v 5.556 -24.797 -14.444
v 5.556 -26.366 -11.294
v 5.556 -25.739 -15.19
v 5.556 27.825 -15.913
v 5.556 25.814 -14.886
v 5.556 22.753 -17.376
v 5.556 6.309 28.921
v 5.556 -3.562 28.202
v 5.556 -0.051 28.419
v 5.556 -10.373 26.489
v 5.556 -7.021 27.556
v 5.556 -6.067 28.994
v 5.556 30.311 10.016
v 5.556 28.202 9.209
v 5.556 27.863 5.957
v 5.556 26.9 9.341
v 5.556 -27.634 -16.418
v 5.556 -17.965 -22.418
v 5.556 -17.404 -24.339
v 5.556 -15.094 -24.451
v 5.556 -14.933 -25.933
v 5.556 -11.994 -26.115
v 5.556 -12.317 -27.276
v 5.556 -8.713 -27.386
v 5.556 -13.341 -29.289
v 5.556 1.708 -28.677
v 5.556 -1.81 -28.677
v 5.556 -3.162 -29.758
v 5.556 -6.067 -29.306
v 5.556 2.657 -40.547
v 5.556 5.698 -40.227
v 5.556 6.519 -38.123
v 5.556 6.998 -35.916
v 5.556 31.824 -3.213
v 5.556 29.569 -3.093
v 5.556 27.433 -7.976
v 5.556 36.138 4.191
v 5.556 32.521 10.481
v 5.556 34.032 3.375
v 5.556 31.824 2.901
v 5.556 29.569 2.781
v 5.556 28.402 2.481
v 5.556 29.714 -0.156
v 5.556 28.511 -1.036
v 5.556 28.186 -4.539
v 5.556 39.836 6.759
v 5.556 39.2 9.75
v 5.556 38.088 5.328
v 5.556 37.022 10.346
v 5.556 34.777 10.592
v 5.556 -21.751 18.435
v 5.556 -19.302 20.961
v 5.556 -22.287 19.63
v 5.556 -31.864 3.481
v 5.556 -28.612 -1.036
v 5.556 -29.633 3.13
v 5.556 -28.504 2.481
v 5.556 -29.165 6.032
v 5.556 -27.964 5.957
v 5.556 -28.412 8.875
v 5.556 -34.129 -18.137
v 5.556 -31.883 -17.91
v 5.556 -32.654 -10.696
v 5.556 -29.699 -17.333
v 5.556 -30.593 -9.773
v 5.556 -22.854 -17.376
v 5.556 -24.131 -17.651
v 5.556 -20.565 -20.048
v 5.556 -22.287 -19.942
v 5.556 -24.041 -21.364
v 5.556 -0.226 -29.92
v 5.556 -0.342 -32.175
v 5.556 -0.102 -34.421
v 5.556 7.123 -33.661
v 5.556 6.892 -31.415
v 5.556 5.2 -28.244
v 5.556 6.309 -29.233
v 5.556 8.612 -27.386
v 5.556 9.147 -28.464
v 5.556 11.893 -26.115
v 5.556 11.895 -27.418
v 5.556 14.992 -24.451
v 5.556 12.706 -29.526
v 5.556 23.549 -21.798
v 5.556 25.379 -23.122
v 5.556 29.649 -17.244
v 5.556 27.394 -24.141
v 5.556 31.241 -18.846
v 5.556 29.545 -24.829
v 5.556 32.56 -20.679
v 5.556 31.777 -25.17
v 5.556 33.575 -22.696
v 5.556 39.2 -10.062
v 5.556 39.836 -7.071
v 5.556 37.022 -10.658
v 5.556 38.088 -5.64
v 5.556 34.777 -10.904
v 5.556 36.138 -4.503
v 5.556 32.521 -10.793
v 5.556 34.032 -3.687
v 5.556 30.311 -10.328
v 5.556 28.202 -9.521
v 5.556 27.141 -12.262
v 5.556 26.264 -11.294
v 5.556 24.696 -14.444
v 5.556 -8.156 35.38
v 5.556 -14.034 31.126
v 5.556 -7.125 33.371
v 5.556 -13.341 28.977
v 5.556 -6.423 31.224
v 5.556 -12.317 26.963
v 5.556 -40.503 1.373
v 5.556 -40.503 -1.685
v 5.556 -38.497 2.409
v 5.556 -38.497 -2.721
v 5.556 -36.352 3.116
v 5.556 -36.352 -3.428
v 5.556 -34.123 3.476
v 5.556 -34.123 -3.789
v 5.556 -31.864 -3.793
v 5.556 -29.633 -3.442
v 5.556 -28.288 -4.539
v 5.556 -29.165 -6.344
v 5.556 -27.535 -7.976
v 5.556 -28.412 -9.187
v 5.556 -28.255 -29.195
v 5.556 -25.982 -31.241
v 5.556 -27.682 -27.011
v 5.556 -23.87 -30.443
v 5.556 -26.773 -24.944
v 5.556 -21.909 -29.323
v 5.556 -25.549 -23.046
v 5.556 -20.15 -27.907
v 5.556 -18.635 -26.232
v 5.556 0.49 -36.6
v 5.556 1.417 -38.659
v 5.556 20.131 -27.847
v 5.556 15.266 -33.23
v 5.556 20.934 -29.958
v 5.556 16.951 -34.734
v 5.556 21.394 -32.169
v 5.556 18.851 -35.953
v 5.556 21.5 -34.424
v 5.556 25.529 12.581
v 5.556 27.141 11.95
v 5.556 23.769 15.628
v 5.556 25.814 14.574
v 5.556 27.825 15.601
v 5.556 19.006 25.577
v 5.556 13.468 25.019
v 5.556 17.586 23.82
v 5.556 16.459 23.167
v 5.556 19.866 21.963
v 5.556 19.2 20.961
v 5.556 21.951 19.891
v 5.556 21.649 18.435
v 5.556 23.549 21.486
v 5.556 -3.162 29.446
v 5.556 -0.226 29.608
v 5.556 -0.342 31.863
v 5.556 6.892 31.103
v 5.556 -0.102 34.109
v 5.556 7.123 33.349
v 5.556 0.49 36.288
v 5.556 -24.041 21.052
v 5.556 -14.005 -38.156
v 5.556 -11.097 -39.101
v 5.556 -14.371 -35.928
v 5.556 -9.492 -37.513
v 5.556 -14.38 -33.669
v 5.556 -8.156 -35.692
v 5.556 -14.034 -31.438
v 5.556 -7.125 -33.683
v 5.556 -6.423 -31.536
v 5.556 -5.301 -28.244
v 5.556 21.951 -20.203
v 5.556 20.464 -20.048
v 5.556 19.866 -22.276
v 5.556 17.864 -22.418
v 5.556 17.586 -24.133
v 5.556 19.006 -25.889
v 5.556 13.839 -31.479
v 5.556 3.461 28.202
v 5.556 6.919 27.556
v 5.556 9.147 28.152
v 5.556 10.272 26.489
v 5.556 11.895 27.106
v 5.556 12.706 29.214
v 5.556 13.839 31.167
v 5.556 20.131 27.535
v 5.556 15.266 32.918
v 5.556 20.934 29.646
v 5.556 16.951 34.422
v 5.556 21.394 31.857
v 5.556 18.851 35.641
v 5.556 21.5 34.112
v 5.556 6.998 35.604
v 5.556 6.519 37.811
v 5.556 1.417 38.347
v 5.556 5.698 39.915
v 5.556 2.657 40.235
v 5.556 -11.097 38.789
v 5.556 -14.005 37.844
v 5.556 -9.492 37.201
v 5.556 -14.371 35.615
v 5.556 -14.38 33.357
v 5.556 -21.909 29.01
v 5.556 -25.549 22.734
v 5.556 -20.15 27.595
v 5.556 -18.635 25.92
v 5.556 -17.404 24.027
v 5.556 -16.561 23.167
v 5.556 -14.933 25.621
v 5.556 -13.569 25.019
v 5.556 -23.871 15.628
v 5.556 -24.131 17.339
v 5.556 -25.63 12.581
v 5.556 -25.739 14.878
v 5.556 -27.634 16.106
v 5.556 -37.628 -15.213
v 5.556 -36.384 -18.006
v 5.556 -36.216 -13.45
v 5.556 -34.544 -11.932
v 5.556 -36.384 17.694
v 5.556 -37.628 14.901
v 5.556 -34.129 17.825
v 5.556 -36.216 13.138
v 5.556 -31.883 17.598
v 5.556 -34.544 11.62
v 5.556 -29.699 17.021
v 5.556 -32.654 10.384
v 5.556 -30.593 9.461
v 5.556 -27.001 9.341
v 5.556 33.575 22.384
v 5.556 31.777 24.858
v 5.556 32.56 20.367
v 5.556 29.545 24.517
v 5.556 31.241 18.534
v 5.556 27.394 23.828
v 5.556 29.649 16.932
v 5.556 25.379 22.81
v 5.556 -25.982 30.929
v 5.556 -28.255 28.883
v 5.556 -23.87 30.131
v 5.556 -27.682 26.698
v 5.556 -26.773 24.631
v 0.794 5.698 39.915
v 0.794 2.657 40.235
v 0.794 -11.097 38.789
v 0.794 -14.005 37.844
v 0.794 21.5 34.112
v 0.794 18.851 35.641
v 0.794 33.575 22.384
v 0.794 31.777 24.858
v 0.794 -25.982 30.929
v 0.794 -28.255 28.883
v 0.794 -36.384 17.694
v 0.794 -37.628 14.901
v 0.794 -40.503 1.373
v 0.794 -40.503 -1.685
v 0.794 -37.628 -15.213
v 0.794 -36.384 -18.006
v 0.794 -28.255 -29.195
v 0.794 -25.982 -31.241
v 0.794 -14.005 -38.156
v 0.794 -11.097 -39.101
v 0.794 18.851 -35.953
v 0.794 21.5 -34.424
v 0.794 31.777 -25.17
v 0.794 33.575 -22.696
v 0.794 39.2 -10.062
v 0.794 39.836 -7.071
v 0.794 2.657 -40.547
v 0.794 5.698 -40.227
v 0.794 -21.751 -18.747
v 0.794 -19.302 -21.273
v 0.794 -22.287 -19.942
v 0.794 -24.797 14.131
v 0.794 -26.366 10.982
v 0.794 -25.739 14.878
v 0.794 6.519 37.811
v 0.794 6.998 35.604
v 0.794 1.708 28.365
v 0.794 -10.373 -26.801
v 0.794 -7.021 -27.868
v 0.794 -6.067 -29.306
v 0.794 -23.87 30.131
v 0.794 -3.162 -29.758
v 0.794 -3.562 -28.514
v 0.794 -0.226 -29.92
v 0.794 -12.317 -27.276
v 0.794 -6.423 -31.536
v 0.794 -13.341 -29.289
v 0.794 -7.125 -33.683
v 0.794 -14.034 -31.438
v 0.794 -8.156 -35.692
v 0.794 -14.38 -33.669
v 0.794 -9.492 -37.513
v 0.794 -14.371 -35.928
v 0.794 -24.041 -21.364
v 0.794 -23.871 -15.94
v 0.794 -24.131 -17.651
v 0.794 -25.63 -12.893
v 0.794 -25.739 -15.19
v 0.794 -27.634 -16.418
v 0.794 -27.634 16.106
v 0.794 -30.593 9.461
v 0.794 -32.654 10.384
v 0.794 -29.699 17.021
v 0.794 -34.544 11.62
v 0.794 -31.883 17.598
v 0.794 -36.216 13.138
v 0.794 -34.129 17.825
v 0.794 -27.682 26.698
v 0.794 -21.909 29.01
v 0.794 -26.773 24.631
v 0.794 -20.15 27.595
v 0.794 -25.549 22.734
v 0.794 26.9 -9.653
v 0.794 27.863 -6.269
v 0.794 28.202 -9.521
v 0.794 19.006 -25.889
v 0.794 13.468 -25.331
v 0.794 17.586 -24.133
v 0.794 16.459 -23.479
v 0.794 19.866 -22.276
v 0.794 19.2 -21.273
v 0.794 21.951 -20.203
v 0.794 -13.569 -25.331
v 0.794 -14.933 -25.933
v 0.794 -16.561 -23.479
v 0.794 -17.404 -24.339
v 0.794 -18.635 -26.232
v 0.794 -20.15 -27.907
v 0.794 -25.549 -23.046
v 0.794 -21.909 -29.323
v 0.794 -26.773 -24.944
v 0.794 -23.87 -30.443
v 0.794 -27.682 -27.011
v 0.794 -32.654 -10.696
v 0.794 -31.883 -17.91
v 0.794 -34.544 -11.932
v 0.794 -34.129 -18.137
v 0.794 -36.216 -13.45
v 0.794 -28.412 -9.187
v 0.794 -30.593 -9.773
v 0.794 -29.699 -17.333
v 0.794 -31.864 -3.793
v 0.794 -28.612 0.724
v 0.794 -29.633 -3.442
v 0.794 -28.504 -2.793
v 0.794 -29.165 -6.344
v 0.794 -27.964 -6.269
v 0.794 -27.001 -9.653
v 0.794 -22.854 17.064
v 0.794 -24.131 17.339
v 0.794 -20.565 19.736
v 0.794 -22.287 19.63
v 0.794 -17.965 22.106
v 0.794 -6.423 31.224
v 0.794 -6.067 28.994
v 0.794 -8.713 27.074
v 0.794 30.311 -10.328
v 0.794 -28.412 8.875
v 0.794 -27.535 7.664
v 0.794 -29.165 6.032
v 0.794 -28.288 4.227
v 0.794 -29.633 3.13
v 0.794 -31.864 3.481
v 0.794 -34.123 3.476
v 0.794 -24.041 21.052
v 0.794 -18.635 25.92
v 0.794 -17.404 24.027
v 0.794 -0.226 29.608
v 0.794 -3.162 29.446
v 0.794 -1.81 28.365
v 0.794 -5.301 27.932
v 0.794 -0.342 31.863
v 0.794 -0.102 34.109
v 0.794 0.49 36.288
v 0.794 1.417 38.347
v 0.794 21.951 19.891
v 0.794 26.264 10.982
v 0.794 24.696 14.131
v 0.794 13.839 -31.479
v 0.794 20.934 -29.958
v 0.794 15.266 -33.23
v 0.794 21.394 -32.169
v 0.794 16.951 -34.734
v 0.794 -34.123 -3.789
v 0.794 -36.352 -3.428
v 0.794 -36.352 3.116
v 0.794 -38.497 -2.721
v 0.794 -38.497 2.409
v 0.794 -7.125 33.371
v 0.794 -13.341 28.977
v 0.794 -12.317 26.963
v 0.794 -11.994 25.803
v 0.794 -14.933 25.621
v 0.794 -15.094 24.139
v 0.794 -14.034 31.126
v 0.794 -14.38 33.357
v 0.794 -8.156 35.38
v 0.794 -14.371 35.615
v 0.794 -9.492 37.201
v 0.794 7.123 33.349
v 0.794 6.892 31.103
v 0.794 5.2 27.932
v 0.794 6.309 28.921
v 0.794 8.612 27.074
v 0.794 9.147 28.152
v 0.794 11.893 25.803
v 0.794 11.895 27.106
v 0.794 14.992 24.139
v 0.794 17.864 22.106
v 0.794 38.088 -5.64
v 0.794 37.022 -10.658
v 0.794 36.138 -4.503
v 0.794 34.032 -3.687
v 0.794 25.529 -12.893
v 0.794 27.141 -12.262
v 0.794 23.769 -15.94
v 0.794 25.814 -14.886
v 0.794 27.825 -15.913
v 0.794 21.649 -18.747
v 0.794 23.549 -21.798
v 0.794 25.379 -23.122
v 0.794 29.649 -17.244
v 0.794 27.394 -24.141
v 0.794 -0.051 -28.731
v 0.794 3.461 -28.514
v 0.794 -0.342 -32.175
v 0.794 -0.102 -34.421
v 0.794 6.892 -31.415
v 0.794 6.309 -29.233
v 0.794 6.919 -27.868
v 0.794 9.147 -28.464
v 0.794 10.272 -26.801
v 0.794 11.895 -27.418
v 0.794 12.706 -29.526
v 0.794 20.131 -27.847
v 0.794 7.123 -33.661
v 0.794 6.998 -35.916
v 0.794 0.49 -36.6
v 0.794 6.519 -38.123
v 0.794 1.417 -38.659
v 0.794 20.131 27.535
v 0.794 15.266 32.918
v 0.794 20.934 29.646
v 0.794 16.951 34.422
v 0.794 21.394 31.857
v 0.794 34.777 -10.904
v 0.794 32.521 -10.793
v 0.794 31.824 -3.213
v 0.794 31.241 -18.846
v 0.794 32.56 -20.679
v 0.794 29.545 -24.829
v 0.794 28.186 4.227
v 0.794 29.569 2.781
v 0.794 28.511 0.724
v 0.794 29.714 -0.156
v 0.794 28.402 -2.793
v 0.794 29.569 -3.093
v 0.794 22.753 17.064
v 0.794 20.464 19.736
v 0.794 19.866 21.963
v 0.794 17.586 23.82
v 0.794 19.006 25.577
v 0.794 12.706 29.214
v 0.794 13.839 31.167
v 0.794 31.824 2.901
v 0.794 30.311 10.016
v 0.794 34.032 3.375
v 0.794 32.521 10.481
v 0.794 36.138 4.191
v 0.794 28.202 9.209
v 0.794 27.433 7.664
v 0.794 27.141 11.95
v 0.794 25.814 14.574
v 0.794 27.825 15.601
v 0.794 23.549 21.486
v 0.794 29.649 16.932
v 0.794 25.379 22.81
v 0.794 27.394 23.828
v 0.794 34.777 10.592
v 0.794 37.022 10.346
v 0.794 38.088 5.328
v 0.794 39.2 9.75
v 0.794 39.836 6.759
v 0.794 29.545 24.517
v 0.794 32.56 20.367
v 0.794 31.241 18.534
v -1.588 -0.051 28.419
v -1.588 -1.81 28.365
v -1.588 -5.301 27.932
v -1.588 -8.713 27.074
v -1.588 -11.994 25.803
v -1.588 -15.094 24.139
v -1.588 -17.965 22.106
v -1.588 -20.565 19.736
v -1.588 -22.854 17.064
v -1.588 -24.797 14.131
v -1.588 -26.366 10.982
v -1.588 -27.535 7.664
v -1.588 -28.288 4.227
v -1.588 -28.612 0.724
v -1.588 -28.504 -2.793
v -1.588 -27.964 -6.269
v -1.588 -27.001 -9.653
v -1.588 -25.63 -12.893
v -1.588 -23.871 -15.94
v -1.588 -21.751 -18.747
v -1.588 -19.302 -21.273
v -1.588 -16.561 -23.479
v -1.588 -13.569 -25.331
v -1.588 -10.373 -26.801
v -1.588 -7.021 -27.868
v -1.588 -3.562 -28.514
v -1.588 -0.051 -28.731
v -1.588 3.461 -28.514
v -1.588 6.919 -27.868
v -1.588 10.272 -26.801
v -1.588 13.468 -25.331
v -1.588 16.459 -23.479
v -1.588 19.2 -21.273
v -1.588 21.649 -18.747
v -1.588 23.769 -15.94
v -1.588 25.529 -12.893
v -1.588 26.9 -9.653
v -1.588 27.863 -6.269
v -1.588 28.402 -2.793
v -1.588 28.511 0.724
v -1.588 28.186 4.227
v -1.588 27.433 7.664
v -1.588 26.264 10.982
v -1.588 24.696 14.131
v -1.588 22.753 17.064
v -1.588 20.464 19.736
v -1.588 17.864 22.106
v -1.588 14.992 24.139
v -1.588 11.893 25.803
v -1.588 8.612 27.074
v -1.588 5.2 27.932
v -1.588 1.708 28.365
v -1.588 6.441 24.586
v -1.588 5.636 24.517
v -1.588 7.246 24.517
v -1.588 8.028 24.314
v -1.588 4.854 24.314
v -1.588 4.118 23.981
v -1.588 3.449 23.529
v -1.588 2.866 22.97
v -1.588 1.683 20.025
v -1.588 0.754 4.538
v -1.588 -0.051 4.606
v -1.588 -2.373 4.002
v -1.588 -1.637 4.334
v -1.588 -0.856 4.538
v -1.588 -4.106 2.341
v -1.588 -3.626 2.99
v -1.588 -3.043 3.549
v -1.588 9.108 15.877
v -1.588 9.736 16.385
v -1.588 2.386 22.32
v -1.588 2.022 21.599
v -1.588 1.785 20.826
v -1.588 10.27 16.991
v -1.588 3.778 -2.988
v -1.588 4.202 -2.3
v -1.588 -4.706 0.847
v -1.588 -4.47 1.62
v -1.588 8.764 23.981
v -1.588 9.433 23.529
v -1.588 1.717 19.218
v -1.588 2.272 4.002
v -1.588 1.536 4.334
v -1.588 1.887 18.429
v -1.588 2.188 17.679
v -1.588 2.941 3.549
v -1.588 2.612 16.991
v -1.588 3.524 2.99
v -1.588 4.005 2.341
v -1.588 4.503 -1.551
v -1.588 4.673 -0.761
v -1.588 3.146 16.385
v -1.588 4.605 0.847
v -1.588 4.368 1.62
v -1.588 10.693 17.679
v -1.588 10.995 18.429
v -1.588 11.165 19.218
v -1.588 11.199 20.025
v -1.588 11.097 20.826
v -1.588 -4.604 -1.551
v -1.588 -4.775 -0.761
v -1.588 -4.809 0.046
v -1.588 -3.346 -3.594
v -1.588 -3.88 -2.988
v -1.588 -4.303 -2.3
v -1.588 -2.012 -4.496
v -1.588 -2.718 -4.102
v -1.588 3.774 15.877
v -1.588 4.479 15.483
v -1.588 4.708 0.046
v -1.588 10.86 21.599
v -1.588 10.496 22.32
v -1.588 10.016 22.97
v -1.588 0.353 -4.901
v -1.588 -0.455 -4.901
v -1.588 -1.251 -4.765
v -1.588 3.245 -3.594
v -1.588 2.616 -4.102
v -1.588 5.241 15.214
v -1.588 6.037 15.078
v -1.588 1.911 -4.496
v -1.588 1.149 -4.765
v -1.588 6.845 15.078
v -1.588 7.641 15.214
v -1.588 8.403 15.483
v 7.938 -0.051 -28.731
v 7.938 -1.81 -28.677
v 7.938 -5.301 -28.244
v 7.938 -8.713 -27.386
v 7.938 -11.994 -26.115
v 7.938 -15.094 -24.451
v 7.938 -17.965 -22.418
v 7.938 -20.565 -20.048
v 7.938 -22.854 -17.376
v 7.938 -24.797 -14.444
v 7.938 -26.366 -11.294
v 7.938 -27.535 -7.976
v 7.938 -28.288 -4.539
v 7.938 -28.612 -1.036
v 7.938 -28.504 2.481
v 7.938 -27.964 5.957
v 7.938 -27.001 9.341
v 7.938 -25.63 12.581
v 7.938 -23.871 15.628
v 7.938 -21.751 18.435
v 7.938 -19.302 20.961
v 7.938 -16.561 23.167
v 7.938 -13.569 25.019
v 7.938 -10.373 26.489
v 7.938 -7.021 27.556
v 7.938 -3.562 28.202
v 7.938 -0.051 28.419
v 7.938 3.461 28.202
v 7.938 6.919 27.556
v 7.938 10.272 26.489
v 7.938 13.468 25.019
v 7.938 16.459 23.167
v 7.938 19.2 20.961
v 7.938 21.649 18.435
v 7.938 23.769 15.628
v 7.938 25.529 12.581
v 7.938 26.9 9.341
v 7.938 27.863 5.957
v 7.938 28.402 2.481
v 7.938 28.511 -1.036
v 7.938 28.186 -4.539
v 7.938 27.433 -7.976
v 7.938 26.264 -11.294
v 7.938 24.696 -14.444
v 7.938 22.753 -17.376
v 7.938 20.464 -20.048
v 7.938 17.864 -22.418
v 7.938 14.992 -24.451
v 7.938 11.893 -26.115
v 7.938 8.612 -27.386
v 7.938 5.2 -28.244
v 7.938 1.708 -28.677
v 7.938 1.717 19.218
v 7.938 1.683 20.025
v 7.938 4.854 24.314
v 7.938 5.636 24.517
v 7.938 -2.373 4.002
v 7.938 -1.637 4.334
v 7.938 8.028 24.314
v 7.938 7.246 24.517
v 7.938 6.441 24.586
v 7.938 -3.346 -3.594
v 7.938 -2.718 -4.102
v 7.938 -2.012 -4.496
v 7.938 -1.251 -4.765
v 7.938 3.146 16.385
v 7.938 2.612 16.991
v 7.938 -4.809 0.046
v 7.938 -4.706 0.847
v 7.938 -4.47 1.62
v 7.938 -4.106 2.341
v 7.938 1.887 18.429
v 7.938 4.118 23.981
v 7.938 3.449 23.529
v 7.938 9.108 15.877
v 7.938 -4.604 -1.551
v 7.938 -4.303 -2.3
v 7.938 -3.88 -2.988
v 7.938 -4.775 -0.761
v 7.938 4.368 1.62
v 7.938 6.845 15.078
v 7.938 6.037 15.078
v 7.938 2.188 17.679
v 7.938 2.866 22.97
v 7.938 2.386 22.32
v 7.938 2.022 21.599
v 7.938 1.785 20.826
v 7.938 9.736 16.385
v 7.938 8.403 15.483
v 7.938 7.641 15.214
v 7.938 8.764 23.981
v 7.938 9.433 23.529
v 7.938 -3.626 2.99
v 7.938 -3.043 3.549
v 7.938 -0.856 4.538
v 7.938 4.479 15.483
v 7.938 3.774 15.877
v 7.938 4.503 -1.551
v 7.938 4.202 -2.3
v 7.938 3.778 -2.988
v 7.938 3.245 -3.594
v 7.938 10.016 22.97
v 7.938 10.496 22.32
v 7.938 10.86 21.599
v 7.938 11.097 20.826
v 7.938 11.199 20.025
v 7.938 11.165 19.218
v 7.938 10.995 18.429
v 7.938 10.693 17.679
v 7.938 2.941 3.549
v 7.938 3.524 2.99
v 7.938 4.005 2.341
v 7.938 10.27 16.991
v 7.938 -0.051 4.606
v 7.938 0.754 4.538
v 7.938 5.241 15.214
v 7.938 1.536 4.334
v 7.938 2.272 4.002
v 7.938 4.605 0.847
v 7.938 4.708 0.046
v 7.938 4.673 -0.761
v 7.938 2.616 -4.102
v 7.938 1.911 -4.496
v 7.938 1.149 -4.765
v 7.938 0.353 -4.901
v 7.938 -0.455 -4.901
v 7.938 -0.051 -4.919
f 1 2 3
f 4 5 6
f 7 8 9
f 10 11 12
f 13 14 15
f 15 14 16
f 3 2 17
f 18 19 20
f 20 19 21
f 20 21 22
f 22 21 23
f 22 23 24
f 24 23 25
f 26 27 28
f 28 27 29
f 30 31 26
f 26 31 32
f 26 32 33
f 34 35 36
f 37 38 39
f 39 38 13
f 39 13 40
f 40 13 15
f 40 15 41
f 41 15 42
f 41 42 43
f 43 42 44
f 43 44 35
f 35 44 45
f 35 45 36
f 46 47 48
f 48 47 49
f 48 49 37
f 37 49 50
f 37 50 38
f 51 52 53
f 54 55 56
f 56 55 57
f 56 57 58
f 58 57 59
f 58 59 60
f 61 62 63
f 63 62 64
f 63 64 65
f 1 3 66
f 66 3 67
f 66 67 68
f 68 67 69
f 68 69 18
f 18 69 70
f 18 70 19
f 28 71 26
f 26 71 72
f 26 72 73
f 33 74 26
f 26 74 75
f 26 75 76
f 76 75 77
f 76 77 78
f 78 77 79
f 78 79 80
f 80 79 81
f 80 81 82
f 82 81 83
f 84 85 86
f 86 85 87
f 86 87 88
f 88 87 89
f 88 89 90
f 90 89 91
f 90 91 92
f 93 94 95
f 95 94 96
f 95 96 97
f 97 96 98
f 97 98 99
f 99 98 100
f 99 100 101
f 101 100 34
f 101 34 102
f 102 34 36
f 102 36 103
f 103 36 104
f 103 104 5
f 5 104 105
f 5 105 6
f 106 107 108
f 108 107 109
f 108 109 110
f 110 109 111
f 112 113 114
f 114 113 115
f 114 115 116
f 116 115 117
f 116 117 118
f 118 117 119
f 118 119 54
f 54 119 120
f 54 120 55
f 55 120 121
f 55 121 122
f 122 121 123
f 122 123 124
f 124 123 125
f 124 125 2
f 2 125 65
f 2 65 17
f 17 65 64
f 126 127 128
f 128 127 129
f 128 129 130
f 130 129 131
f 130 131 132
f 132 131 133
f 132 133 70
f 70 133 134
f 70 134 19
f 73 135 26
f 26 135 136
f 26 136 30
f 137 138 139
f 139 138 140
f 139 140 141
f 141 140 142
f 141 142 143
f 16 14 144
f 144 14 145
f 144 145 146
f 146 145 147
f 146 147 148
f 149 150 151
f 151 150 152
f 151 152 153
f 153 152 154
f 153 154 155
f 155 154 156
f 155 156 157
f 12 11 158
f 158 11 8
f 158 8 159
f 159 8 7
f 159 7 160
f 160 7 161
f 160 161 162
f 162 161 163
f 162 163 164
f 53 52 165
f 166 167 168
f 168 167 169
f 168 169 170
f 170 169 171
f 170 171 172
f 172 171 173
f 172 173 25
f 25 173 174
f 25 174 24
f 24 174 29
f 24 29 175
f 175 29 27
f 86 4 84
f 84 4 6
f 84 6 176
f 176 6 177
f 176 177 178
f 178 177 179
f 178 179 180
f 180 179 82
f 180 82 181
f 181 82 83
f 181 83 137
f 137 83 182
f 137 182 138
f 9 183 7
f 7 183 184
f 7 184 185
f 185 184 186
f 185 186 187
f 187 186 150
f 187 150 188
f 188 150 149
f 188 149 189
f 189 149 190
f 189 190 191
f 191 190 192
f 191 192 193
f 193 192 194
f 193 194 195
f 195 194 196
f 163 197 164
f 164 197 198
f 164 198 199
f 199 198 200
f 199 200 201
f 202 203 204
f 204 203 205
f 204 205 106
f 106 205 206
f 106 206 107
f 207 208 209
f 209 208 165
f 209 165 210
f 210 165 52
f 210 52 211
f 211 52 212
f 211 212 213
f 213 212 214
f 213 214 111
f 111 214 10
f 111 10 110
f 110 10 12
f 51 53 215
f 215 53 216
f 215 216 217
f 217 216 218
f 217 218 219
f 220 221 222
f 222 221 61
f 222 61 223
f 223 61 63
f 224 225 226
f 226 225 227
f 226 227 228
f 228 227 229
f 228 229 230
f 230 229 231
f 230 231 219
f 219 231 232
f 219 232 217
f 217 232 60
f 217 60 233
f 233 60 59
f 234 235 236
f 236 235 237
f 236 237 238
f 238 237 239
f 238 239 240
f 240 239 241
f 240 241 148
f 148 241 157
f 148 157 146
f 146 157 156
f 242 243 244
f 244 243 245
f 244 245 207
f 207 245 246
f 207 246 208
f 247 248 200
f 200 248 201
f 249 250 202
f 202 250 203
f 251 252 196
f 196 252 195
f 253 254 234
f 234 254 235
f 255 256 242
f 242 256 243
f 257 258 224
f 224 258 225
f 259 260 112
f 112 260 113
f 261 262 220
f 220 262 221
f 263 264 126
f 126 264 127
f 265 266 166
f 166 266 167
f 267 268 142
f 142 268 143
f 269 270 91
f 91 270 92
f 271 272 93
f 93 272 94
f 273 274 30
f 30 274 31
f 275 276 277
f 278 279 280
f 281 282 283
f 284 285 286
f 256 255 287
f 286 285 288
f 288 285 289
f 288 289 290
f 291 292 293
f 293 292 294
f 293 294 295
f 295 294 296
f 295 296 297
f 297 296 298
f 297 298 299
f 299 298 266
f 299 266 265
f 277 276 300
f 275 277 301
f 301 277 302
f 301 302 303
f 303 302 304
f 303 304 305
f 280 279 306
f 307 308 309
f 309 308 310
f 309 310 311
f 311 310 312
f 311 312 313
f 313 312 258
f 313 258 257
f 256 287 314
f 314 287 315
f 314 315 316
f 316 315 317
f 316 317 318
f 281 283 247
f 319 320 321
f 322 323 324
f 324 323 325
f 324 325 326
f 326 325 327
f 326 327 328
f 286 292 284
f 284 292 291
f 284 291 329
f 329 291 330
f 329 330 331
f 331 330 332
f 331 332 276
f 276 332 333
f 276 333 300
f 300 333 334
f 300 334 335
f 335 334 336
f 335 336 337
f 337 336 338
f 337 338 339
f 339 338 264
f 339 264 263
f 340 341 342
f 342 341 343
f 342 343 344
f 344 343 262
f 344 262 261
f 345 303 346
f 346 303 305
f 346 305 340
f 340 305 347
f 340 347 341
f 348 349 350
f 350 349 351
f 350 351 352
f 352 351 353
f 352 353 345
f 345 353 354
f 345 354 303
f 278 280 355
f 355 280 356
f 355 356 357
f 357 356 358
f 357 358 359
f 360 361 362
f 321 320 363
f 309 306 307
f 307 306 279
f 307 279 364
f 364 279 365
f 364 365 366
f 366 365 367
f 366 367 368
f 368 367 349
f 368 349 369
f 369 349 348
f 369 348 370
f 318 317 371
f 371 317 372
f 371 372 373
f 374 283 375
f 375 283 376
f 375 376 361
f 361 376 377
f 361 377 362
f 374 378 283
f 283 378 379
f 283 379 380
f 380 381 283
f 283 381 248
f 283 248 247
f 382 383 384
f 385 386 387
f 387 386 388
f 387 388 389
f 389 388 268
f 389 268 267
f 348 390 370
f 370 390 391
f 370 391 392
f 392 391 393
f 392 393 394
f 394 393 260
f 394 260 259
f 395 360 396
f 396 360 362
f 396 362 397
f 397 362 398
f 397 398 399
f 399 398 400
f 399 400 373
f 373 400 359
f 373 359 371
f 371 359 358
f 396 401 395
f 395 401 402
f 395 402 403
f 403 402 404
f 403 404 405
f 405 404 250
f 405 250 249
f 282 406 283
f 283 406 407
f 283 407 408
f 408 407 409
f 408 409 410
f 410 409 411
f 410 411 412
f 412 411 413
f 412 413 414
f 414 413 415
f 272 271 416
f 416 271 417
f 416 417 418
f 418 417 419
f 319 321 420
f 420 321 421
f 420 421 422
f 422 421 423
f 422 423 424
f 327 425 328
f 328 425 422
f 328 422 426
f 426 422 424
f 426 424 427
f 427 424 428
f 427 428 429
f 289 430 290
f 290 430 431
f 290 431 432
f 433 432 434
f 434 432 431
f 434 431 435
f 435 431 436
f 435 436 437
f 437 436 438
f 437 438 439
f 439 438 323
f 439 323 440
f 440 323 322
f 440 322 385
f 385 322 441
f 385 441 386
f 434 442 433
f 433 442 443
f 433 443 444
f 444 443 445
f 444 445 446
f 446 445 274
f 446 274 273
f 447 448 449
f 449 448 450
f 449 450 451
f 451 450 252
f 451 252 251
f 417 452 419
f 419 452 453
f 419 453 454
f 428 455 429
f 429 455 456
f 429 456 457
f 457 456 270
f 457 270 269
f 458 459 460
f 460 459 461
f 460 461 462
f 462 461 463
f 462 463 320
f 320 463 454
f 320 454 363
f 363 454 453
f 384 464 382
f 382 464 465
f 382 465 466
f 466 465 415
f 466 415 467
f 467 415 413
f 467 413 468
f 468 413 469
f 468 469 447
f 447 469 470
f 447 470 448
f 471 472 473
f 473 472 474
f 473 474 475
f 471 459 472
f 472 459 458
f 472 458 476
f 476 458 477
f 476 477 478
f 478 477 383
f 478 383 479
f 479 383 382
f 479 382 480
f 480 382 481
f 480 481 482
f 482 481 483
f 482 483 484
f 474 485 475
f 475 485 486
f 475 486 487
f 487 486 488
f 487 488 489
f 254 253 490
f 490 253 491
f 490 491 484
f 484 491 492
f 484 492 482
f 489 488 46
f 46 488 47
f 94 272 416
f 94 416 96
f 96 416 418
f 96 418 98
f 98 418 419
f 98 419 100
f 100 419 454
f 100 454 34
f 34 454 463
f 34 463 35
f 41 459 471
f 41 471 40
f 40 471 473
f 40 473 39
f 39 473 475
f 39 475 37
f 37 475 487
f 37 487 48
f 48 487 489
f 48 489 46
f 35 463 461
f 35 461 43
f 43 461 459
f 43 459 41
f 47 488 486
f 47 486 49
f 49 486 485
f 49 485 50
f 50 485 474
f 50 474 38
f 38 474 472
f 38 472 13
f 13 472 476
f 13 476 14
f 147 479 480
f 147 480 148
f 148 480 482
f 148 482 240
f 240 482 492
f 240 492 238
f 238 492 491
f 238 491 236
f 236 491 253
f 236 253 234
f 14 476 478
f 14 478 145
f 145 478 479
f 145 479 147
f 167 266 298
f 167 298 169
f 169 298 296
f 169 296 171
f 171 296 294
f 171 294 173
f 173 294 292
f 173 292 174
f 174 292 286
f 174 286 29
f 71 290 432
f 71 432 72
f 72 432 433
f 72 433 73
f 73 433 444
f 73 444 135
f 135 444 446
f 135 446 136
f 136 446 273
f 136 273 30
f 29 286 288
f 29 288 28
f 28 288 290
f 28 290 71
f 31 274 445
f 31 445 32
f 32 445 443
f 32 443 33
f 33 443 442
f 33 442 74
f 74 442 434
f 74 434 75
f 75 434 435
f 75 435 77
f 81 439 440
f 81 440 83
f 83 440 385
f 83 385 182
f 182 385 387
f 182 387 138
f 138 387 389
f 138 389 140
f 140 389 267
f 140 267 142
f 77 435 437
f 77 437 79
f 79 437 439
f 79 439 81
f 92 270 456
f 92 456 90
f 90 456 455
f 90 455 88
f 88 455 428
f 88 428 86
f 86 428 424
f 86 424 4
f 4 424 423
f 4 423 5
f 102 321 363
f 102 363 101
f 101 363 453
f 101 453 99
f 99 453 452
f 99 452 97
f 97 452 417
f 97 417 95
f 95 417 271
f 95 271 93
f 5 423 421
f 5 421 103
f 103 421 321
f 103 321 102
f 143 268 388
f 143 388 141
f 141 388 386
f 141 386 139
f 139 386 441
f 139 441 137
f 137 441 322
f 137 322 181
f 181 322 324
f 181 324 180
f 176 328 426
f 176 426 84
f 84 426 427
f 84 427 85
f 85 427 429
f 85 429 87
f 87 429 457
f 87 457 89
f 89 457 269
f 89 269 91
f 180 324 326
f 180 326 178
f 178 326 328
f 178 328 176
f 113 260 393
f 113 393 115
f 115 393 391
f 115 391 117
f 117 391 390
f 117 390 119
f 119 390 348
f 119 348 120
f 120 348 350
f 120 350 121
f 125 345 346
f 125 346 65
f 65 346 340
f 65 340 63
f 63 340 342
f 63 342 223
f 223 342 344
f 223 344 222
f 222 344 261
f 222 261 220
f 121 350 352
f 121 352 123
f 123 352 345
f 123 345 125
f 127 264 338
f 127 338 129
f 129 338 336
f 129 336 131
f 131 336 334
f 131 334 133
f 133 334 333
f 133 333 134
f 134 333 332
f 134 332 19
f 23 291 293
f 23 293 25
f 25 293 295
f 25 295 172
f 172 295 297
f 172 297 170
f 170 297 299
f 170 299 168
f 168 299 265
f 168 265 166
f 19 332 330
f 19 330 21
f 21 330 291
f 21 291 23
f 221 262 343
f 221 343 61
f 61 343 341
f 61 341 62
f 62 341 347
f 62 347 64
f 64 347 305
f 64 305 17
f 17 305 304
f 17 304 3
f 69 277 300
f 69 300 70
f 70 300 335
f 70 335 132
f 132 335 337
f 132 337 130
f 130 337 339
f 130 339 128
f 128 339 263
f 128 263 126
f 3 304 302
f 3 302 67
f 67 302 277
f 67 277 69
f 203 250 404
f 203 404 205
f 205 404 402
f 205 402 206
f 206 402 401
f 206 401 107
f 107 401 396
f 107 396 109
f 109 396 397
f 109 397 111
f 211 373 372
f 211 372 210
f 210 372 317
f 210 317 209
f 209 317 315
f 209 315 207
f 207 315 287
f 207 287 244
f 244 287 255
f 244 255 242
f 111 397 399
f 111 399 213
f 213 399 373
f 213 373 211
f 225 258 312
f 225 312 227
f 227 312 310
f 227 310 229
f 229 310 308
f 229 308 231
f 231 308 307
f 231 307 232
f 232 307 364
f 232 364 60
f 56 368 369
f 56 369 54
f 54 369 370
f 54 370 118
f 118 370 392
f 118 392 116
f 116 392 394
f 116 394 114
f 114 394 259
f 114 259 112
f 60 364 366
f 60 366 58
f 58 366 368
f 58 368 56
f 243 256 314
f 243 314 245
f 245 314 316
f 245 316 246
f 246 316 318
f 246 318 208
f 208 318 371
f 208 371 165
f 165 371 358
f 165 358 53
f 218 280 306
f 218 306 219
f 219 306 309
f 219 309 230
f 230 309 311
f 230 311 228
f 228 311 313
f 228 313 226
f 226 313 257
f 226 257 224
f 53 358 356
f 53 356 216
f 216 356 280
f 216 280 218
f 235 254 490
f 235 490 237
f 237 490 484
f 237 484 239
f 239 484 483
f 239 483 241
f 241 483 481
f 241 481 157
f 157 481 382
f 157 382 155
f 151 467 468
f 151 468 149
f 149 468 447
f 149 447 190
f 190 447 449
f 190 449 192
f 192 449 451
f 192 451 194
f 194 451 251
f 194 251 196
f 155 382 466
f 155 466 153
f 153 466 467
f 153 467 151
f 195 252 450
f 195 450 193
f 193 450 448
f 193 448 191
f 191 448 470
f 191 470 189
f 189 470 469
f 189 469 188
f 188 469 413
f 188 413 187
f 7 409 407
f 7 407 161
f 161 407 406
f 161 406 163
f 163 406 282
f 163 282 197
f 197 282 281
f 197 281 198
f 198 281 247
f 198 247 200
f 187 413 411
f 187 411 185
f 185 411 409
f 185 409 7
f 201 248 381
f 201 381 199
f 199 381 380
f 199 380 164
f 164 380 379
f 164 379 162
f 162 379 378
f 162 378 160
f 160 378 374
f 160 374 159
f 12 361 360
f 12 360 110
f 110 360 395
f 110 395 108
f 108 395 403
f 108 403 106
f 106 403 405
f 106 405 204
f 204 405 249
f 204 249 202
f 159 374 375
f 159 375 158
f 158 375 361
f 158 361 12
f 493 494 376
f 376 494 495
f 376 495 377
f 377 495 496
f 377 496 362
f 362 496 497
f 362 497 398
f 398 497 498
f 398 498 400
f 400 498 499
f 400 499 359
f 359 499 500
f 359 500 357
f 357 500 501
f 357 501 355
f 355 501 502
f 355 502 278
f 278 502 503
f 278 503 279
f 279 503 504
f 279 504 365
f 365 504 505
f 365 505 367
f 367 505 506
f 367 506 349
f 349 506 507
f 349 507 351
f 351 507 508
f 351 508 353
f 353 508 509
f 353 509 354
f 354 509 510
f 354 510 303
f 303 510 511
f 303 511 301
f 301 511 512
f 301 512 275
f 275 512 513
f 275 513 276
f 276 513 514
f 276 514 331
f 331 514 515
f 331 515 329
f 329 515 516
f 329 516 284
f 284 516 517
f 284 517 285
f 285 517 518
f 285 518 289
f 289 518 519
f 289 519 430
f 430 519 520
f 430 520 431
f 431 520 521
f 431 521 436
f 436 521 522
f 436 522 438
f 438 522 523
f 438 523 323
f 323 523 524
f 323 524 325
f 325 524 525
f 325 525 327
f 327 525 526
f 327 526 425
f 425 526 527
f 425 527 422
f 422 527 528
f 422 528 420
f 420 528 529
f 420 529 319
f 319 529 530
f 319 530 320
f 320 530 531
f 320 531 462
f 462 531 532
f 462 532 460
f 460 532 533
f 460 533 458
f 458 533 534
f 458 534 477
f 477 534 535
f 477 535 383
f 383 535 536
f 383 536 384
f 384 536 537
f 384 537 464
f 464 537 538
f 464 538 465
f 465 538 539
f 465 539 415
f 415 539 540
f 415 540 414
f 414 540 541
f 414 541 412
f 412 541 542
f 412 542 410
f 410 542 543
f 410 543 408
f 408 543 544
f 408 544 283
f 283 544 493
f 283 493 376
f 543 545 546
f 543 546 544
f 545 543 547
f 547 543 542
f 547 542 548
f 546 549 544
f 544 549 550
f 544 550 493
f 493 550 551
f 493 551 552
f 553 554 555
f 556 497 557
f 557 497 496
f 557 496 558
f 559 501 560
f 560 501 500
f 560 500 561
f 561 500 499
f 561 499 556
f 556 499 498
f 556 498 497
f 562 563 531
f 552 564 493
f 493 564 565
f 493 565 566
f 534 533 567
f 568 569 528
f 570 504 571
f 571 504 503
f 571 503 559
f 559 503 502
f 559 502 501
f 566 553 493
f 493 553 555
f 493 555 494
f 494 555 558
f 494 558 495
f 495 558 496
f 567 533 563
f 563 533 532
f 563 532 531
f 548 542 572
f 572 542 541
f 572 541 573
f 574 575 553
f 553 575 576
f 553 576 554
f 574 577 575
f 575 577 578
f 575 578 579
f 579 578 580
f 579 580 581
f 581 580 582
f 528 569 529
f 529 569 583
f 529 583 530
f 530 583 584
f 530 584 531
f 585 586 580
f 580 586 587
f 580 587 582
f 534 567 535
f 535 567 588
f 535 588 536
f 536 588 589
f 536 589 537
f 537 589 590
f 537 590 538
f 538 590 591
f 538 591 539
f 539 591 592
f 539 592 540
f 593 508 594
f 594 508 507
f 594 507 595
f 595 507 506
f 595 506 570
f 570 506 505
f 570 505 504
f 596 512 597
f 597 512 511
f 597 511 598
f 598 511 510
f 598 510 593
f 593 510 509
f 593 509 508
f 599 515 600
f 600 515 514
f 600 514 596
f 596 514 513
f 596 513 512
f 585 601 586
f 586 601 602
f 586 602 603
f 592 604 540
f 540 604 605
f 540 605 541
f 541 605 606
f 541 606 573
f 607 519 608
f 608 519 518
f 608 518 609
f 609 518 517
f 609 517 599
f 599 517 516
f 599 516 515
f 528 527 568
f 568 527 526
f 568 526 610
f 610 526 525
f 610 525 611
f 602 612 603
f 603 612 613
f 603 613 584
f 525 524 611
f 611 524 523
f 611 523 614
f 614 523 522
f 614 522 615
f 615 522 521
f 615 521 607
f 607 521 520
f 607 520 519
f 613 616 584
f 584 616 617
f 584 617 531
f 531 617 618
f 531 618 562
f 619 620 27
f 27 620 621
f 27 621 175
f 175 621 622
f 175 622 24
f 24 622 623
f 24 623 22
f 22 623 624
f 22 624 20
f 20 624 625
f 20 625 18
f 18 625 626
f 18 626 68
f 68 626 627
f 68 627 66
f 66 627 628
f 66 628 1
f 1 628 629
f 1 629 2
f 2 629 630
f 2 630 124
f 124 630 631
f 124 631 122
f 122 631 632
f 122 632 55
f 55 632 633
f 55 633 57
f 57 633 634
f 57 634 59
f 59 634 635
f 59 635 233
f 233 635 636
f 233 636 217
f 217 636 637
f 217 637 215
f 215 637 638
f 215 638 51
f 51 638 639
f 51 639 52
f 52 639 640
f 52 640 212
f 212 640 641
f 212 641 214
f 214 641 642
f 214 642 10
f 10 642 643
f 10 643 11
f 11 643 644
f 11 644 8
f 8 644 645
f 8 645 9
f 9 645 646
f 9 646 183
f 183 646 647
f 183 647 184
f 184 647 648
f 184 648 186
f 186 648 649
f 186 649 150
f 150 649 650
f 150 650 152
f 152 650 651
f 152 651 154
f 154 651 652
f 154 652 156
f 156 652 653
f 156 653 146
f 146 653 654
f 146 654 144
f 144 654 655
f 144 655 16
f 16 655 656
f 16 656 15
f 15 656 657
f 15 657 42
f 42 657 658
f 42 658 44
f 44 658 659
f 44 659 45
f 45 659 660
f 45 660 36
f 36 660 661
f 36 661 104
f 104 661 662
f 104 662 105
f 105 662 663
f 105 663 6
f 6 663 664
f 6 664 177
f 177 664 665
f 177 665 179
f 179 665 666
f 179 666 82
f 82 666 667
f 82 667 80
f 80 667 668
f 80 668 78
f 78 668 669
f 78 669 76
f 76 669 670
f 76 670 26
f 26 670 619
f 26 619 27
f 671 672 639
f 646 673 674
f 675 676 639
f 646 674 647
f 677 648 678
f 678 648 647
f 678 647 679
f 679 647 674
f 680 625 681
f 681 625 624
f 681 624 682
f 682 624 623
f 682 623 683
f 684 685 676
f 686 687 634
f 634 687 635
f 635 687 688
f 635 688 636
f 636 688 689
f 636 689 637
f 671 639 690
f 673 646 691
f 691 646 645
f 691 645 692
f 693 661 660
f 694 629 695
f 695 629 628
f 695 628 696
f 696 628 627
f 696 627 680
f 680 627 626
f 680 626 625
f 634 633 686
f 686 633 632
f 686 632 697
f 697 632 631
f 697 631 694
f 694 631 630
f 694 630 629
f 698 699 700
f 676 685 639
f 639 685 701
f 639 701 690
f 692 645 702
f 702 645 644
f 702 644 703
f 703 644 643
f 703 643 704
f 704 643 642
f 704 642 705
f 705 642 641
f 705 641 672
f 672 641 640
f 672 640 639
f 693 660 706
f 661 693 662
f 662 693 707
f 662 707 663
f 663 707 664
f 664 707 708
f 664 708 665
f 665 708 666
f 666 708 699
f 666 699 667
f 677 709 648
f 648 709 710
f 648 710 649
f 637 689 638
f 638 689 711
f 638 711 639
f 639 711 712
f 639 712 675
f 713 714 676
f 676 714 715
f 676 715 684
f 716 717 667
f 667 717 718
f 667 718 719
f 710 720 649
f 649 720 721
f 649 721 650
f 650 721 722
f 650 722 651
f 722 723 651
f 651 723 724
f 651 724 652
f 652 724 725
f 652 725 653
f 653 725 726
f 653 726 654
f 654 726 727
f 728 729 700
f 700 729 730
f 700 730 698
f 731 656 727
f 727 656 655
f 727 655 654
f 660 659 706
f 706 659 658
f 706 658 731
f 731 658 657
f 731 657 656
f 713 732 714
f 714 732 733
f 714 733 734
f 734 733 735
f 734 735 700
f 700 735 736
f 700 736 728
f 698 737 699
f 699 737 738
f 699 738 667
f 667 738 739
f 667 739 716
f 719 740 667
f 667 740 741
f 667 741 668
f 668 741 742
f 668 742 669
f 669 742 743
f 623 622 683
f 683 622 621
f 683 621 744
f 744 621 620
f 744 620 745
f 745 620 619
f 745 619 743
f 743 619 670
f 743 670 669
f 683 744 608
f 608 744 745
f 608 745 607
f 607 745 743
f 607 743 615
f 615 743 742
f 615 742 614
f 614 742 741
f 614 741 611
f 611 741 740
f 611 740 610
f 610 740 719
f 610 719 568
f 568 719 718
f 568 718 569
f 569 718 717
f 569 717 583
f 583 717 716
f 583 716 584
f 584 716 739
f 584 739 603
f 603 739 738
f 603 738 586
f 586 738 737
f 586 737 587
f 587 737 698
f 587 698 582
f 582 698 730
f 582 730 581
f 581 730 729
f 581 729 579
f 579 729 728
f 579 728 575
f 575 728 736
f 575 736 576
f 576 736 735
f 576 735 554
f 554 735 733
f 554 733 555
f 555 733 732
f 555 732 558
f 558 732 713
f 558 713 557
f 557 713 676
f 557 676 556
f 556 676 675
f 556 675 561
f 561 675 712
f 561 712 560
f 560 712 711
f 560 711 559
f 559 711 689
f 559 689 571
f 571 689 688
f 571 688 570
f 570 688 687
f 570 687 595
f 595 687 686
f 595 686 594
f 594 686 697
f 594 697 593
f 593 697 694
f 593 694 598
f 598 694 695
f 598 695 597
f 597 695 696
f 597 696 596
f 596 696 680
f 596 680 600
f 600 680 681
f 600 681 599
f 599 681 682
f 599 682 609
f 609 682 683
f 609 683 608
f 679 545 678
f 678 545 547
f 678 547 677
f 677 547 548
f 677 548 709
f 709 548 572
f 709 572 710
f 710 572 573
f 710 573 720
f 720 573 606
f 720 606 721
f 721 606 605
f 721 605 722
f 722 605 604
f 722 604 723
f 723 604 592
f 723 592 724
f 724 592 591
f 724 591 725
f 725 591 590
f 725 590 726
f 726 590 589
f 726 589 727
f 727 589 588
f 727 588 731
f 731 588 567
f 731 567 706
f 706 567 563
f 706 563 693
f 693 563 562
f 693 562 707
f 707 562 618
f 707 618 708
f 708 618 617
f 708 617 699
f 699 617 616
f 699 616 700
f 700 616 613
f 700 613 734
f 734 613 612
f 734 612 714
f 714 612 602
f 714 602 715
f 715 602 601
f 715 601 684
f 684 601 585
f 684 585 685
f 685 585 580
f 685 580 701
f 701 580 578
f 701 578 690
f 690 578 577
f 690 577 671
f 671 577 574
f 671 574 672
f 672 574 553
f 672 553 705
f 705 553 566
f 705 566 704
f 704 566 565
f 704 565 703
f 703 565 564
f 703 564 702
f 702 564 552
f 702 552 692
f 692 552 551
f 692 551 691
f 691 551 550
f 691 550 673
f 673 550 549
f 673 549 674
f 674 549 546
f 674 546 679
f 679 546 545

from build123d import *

# Parameters (mm, degrees)
BASPROSKE_W        = 6.35
BASPROSKE_H        = 53.975
TOOTHCUT_DEPTH     = 77.59584682
TEETHCUTS_COUNT    = 15
TEETHCUTS_ANGLE    = 336
HUBNEABOTSKE_R     = 38.1
HUBNEARBOTH_DEPTH  = 3.1750254
HUBFAR_START       = 3.1750254
HUBFARSKE_R        = 38.1
HUBFAR_DEPTH       = 3.1750254
BORSKE_R           = 6.35
BORE_DEPTH         = 12.7000508
SKETCH1_R          = 6.35
CUT_EXTRUDE1_DEPTH = 78.297193623
SCALE1_SCALE       = 0.75


with BuildPart() as part:
    # BasProSke → Base-Revolve (revolve)
    with BuildSketch(Plane(origin=(0, 0, 0), x_dir=(1, 0, 0), z_dir=(0, 1, 0)), mode=Mode.PRIVATE) as base_revolve_sk:
        with Locations((3.175, 26.9875)):
            Rectangle(BASPROSKE_W, BASPROSKE_H)
    revolve(base_revolve_sk.sketch.rotate(Axis((-10, 0, 0), (1, 0, 0)), 180), axis=Axis((-10, 0, 0), (1, 0, 0)))

    # TooCutSke → ToothCut (cut, through all)
    with BuildSketch(Plane(origin=(0, 0, 0), x_dir=(0, 0, -1), z_dir=(1, 0, 0))):
        with BuildLine():
            ThreePointArc((3.91547882, 39.492605349), (0, 39.68623), (-3.91547882, 39.492605349))
            ThreePointArc((-3.91547882, 39.492605349), (-5.201686692, 46.882953453), (-9.241355572, 53.20376441))
            ThreePointArc((-9.241355572, 53.20376441), (0, 54.0004), (9.241355572, 53.20376441))
            ThreePointArc((9.241355572, 53.20376441), (5.201686692, 46.882953453), (3.91547882, 39.492605349))
        make_face()
    toothcut = extrude(amount=TOOTHCUT_DEPTH, mode=Mode.SUBTRACT)

    # TeethCuts: ToothCut ×15 about axis
    teethcuts_axis = Axis((-10, 0, 0), (1, 0, 0))
    for i in range(1, TEETHCUTS_COUNT):
        add(toothcut.rotate(teethcuts_axis, i * TEETHCUTS_ANGLE / (TEETHCUTS_COUNT - 1)), mode=Mode.SUBTRACT)

    # HubNeaBotSke → HubNearBoth (add)
    with BuildSketch(Plane.ZY):
        with Locations(Location((0, 0, 0), (0, 0, 180))):
            Circle(HUBNEABOTSKE_R)
    extrude(amount=HUBNEARBOTH_DEPTH)

    # HubFarSke → HubFar (add)
    with BuildSketch(Plane(origin=(6.35, 0, 0), x_dir=(0, 0, -1), z_dir=(1, 0, 0)).offset(HUBFAR_START)):
        Circle(HUBFARSKE_R)
    extrude(amount=-HUBFAR_DEPTH)

    # BorSke → Bore (cut, symmetric)
    with BuildSketch(Plane(origin=(0, 0, 0), x_dir=(0, 0, -1), z_dir=(1, 0, 0))):
        with Locations(Location((0, 0, 0), (0, 0, 180))):
            Circle(BORSKE_R)
    extrude(amount=BORE_DEPTH, both=True, mode=Mode.SUBTRACT)

    # Sketch1 → Cut-Extrude1 (cut, through all)
    with BuildSketch(Plane.ZY.offset(3.1750254)):
        with Locations((26.638896337, 8.655502106)):
            Circle(SKETCH1_R)
    extrude(amount=-CUT_EXTRUDE1_DEPTH, mode=Mode.SUBTRACT)


with BuildPart() as part_1:
    # Scale1: scaled about (3.175, -0.202804759, -0.624168867)
    add(part.part.scale(SCALE1_SCALE).moved(Location((0.79375, -0.05070119, -0.156042217))))


solid = part_1.part
